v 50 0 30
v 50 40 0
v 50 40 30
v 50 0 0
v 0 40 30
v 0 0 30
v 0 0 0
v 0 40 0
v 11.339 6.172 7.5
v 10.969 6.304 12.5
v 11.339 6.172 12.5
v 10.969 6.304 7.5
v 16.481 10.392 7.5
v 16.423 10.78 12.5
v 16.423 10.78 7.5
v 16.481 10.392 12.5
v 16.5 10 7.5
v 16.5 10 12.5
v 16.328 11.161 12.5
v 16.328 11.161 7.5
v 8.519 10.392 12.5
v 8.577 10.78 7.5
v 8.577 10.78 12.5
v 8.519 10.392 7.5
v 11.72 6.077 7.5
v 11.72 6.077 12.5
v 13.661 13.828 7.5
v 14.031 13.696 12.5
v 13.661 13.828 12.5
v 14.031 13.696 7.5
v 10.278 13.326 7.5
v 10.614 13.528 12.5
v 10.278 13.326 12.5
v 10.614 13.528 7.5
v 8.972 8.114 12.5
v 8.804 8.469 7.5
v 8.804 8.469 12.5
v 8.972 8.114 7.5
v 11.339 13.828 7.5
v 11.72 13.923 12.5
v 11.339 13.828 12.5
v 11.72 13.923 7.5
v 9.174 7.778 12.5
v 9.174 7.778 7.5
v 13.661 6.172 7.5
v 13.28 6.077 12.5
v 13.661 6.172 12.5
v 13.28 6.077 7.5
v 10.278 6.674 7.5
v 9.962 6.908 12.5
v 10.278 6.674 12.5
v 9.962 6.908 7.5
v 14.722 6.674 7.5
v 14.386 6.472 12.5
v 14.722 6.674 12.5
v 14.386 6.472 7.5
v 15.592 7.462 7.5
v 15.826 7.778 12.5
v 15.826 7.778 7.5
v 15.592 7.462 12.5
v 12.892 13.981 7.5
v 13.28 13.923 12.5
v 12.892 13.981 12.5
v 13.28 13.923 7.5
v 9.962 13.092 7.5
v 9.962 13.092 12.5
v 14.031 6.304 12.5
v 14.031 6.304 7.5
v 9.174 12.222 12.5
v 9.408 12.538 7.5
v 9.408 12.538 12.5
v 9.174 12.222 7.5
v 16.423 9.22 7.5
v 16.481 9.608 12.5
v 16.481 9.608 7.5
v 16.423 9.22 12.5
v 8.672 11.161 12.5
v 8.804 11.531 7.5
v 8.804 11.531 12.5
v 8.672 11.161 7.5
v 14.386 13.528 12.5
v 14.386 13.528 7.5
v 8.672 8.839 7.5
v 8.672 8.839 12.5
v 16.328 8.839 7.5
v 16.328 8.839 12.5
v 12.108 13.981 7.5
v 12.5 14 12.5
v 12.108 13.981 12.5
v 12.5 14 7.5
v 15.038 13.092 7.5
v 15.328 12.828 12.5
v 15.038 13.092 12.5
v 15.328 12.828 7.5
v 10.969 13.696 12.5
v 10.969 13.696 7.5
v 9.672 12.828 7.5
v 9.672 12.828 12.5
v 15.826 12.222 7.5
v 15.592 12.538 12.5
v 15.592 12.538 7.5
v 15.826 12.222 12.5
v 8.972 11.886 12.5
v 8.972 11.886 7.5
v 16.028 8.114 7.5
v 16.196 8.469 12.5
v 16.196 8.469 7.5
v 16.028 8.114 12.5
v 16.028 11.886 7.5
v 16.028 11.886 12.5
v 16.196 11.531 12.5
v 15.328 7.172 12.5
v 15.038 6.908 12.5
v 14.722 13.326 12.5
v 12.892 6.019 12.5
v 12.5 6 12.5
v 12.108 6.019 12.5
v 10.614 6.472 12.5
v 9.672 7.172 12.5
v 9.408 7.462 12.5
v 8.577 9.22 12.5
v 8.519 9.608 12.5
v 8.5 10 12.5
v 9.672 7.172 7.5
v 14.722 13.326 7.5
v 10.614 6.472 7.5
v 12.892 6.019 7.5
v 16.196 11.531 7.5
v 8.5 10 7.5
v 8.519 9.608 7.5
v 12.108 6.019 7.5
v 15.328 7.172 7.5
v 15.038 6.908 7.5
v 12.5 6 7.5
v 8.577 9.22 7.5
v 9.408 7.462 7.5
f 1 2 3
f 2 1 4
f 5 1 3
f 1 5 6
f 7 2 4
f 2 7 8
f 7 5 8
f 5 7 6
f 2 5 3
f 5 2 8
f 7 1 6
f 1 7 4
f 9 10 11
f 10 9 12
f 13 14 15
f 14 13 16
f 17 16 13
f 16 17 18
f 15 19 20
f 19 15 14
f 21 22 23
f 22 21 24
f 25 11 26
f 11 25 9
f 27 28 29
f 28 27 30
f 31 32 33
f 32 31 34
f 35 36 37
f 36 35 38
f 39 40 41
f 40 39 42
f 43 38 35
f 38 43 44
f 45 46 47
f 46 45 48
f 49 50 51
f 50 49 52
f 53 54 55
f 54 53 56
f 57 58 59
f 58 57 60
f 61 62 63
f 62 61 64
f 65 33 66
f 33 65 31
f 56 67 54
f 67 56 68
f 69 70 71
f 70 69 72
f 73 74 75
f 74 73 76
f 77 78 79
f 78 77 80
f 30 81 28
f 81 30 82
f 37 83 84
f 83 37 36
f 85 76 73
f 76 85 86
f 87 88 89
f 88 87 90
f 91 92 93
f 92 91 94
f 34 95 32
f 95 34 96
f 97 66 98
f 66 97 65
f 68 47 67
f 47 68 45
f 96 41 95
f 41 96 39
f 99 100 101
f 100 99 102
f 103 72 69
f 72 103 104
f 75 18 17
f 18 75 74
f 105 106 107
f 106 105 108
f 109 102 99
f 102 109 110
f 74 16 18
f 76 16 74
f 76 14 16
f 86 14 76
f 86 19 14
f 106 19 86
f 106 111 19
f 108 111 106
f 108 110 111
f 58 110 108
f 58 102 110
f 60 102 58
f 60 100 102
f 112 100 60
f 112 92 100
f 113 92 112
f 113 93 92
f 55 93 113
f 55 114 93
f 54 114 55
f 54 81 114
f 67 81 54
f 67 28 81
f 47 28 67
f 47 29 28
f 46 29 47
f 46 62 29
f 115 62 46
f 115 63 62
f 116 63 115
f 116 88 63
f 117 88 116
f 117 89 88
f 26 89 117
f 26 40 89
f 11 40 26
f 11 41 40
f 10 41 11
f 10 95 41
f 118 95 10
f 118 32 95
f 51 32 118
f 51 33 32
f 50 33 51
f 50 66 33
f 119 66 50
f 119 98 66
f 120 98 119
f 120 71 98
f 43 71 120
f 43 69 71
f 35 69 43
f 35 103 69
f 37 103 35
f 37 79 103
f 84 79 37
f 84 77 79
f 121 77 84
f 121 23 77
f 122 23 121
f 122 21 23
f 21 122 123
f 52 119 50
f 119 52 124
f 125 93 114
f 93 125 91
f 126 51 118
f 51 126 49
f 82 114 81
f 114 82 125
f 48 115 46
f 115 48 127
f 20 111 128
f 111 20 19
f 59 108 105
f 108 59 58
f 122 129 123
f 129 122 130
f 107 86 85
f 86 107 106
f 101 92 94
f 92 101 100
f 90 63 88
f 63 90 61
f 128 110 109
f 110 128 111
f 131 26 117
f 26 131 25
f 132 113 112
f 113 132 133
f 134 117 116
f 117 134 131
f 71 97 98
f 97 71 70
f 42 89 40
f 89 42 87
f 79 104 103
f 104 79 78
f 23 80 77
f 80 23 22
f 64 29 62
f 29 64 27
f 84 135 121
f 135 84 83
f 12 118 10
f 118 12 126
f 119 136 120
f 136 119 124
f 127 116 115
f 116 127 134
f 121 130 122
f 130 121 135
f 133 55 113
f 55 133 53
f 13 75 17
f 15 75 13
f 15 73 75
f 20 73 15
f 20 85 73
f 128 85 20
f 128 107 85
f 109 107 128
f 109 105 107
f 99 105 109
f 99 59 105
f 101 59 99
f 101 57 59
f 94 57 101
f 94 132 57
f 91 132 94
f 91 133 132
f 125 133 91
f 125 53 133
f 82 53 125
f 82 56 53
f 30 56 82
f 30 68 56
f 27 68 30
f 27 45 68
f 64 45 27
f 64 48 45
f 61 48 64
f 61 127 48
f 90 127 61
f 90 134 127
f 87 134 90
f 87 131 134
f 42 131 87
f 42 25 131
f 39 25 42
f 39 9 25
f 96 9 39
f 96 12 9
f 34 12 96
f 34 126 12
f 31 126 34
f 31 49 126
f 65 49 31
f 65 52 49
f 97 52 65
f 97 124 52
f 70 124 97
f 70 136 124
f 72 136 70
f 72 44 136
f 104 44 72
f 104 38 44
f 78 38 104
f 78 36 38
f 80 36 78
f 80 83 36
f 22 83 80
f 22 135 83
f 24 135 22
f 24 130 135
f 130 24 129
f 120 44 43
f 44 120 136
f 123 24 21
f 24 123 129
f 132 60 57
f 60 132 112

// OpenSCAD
$fn = 64;

module composite_shape(width, height, depth, thickness, hole_diameter, hole_x, hole_y, hole_z) {
  difference() {
    cube([width, height, depth]);
    translate([width/4, height/4, depth/4])
    cylinder(h=thickness, r=hole_diameter/2);
  }
}

composite_shape(width=50, height=40, depth=30, thickness=5, hole_diameter=8, hole_x=20, hole_y=20, hole_z=10);
